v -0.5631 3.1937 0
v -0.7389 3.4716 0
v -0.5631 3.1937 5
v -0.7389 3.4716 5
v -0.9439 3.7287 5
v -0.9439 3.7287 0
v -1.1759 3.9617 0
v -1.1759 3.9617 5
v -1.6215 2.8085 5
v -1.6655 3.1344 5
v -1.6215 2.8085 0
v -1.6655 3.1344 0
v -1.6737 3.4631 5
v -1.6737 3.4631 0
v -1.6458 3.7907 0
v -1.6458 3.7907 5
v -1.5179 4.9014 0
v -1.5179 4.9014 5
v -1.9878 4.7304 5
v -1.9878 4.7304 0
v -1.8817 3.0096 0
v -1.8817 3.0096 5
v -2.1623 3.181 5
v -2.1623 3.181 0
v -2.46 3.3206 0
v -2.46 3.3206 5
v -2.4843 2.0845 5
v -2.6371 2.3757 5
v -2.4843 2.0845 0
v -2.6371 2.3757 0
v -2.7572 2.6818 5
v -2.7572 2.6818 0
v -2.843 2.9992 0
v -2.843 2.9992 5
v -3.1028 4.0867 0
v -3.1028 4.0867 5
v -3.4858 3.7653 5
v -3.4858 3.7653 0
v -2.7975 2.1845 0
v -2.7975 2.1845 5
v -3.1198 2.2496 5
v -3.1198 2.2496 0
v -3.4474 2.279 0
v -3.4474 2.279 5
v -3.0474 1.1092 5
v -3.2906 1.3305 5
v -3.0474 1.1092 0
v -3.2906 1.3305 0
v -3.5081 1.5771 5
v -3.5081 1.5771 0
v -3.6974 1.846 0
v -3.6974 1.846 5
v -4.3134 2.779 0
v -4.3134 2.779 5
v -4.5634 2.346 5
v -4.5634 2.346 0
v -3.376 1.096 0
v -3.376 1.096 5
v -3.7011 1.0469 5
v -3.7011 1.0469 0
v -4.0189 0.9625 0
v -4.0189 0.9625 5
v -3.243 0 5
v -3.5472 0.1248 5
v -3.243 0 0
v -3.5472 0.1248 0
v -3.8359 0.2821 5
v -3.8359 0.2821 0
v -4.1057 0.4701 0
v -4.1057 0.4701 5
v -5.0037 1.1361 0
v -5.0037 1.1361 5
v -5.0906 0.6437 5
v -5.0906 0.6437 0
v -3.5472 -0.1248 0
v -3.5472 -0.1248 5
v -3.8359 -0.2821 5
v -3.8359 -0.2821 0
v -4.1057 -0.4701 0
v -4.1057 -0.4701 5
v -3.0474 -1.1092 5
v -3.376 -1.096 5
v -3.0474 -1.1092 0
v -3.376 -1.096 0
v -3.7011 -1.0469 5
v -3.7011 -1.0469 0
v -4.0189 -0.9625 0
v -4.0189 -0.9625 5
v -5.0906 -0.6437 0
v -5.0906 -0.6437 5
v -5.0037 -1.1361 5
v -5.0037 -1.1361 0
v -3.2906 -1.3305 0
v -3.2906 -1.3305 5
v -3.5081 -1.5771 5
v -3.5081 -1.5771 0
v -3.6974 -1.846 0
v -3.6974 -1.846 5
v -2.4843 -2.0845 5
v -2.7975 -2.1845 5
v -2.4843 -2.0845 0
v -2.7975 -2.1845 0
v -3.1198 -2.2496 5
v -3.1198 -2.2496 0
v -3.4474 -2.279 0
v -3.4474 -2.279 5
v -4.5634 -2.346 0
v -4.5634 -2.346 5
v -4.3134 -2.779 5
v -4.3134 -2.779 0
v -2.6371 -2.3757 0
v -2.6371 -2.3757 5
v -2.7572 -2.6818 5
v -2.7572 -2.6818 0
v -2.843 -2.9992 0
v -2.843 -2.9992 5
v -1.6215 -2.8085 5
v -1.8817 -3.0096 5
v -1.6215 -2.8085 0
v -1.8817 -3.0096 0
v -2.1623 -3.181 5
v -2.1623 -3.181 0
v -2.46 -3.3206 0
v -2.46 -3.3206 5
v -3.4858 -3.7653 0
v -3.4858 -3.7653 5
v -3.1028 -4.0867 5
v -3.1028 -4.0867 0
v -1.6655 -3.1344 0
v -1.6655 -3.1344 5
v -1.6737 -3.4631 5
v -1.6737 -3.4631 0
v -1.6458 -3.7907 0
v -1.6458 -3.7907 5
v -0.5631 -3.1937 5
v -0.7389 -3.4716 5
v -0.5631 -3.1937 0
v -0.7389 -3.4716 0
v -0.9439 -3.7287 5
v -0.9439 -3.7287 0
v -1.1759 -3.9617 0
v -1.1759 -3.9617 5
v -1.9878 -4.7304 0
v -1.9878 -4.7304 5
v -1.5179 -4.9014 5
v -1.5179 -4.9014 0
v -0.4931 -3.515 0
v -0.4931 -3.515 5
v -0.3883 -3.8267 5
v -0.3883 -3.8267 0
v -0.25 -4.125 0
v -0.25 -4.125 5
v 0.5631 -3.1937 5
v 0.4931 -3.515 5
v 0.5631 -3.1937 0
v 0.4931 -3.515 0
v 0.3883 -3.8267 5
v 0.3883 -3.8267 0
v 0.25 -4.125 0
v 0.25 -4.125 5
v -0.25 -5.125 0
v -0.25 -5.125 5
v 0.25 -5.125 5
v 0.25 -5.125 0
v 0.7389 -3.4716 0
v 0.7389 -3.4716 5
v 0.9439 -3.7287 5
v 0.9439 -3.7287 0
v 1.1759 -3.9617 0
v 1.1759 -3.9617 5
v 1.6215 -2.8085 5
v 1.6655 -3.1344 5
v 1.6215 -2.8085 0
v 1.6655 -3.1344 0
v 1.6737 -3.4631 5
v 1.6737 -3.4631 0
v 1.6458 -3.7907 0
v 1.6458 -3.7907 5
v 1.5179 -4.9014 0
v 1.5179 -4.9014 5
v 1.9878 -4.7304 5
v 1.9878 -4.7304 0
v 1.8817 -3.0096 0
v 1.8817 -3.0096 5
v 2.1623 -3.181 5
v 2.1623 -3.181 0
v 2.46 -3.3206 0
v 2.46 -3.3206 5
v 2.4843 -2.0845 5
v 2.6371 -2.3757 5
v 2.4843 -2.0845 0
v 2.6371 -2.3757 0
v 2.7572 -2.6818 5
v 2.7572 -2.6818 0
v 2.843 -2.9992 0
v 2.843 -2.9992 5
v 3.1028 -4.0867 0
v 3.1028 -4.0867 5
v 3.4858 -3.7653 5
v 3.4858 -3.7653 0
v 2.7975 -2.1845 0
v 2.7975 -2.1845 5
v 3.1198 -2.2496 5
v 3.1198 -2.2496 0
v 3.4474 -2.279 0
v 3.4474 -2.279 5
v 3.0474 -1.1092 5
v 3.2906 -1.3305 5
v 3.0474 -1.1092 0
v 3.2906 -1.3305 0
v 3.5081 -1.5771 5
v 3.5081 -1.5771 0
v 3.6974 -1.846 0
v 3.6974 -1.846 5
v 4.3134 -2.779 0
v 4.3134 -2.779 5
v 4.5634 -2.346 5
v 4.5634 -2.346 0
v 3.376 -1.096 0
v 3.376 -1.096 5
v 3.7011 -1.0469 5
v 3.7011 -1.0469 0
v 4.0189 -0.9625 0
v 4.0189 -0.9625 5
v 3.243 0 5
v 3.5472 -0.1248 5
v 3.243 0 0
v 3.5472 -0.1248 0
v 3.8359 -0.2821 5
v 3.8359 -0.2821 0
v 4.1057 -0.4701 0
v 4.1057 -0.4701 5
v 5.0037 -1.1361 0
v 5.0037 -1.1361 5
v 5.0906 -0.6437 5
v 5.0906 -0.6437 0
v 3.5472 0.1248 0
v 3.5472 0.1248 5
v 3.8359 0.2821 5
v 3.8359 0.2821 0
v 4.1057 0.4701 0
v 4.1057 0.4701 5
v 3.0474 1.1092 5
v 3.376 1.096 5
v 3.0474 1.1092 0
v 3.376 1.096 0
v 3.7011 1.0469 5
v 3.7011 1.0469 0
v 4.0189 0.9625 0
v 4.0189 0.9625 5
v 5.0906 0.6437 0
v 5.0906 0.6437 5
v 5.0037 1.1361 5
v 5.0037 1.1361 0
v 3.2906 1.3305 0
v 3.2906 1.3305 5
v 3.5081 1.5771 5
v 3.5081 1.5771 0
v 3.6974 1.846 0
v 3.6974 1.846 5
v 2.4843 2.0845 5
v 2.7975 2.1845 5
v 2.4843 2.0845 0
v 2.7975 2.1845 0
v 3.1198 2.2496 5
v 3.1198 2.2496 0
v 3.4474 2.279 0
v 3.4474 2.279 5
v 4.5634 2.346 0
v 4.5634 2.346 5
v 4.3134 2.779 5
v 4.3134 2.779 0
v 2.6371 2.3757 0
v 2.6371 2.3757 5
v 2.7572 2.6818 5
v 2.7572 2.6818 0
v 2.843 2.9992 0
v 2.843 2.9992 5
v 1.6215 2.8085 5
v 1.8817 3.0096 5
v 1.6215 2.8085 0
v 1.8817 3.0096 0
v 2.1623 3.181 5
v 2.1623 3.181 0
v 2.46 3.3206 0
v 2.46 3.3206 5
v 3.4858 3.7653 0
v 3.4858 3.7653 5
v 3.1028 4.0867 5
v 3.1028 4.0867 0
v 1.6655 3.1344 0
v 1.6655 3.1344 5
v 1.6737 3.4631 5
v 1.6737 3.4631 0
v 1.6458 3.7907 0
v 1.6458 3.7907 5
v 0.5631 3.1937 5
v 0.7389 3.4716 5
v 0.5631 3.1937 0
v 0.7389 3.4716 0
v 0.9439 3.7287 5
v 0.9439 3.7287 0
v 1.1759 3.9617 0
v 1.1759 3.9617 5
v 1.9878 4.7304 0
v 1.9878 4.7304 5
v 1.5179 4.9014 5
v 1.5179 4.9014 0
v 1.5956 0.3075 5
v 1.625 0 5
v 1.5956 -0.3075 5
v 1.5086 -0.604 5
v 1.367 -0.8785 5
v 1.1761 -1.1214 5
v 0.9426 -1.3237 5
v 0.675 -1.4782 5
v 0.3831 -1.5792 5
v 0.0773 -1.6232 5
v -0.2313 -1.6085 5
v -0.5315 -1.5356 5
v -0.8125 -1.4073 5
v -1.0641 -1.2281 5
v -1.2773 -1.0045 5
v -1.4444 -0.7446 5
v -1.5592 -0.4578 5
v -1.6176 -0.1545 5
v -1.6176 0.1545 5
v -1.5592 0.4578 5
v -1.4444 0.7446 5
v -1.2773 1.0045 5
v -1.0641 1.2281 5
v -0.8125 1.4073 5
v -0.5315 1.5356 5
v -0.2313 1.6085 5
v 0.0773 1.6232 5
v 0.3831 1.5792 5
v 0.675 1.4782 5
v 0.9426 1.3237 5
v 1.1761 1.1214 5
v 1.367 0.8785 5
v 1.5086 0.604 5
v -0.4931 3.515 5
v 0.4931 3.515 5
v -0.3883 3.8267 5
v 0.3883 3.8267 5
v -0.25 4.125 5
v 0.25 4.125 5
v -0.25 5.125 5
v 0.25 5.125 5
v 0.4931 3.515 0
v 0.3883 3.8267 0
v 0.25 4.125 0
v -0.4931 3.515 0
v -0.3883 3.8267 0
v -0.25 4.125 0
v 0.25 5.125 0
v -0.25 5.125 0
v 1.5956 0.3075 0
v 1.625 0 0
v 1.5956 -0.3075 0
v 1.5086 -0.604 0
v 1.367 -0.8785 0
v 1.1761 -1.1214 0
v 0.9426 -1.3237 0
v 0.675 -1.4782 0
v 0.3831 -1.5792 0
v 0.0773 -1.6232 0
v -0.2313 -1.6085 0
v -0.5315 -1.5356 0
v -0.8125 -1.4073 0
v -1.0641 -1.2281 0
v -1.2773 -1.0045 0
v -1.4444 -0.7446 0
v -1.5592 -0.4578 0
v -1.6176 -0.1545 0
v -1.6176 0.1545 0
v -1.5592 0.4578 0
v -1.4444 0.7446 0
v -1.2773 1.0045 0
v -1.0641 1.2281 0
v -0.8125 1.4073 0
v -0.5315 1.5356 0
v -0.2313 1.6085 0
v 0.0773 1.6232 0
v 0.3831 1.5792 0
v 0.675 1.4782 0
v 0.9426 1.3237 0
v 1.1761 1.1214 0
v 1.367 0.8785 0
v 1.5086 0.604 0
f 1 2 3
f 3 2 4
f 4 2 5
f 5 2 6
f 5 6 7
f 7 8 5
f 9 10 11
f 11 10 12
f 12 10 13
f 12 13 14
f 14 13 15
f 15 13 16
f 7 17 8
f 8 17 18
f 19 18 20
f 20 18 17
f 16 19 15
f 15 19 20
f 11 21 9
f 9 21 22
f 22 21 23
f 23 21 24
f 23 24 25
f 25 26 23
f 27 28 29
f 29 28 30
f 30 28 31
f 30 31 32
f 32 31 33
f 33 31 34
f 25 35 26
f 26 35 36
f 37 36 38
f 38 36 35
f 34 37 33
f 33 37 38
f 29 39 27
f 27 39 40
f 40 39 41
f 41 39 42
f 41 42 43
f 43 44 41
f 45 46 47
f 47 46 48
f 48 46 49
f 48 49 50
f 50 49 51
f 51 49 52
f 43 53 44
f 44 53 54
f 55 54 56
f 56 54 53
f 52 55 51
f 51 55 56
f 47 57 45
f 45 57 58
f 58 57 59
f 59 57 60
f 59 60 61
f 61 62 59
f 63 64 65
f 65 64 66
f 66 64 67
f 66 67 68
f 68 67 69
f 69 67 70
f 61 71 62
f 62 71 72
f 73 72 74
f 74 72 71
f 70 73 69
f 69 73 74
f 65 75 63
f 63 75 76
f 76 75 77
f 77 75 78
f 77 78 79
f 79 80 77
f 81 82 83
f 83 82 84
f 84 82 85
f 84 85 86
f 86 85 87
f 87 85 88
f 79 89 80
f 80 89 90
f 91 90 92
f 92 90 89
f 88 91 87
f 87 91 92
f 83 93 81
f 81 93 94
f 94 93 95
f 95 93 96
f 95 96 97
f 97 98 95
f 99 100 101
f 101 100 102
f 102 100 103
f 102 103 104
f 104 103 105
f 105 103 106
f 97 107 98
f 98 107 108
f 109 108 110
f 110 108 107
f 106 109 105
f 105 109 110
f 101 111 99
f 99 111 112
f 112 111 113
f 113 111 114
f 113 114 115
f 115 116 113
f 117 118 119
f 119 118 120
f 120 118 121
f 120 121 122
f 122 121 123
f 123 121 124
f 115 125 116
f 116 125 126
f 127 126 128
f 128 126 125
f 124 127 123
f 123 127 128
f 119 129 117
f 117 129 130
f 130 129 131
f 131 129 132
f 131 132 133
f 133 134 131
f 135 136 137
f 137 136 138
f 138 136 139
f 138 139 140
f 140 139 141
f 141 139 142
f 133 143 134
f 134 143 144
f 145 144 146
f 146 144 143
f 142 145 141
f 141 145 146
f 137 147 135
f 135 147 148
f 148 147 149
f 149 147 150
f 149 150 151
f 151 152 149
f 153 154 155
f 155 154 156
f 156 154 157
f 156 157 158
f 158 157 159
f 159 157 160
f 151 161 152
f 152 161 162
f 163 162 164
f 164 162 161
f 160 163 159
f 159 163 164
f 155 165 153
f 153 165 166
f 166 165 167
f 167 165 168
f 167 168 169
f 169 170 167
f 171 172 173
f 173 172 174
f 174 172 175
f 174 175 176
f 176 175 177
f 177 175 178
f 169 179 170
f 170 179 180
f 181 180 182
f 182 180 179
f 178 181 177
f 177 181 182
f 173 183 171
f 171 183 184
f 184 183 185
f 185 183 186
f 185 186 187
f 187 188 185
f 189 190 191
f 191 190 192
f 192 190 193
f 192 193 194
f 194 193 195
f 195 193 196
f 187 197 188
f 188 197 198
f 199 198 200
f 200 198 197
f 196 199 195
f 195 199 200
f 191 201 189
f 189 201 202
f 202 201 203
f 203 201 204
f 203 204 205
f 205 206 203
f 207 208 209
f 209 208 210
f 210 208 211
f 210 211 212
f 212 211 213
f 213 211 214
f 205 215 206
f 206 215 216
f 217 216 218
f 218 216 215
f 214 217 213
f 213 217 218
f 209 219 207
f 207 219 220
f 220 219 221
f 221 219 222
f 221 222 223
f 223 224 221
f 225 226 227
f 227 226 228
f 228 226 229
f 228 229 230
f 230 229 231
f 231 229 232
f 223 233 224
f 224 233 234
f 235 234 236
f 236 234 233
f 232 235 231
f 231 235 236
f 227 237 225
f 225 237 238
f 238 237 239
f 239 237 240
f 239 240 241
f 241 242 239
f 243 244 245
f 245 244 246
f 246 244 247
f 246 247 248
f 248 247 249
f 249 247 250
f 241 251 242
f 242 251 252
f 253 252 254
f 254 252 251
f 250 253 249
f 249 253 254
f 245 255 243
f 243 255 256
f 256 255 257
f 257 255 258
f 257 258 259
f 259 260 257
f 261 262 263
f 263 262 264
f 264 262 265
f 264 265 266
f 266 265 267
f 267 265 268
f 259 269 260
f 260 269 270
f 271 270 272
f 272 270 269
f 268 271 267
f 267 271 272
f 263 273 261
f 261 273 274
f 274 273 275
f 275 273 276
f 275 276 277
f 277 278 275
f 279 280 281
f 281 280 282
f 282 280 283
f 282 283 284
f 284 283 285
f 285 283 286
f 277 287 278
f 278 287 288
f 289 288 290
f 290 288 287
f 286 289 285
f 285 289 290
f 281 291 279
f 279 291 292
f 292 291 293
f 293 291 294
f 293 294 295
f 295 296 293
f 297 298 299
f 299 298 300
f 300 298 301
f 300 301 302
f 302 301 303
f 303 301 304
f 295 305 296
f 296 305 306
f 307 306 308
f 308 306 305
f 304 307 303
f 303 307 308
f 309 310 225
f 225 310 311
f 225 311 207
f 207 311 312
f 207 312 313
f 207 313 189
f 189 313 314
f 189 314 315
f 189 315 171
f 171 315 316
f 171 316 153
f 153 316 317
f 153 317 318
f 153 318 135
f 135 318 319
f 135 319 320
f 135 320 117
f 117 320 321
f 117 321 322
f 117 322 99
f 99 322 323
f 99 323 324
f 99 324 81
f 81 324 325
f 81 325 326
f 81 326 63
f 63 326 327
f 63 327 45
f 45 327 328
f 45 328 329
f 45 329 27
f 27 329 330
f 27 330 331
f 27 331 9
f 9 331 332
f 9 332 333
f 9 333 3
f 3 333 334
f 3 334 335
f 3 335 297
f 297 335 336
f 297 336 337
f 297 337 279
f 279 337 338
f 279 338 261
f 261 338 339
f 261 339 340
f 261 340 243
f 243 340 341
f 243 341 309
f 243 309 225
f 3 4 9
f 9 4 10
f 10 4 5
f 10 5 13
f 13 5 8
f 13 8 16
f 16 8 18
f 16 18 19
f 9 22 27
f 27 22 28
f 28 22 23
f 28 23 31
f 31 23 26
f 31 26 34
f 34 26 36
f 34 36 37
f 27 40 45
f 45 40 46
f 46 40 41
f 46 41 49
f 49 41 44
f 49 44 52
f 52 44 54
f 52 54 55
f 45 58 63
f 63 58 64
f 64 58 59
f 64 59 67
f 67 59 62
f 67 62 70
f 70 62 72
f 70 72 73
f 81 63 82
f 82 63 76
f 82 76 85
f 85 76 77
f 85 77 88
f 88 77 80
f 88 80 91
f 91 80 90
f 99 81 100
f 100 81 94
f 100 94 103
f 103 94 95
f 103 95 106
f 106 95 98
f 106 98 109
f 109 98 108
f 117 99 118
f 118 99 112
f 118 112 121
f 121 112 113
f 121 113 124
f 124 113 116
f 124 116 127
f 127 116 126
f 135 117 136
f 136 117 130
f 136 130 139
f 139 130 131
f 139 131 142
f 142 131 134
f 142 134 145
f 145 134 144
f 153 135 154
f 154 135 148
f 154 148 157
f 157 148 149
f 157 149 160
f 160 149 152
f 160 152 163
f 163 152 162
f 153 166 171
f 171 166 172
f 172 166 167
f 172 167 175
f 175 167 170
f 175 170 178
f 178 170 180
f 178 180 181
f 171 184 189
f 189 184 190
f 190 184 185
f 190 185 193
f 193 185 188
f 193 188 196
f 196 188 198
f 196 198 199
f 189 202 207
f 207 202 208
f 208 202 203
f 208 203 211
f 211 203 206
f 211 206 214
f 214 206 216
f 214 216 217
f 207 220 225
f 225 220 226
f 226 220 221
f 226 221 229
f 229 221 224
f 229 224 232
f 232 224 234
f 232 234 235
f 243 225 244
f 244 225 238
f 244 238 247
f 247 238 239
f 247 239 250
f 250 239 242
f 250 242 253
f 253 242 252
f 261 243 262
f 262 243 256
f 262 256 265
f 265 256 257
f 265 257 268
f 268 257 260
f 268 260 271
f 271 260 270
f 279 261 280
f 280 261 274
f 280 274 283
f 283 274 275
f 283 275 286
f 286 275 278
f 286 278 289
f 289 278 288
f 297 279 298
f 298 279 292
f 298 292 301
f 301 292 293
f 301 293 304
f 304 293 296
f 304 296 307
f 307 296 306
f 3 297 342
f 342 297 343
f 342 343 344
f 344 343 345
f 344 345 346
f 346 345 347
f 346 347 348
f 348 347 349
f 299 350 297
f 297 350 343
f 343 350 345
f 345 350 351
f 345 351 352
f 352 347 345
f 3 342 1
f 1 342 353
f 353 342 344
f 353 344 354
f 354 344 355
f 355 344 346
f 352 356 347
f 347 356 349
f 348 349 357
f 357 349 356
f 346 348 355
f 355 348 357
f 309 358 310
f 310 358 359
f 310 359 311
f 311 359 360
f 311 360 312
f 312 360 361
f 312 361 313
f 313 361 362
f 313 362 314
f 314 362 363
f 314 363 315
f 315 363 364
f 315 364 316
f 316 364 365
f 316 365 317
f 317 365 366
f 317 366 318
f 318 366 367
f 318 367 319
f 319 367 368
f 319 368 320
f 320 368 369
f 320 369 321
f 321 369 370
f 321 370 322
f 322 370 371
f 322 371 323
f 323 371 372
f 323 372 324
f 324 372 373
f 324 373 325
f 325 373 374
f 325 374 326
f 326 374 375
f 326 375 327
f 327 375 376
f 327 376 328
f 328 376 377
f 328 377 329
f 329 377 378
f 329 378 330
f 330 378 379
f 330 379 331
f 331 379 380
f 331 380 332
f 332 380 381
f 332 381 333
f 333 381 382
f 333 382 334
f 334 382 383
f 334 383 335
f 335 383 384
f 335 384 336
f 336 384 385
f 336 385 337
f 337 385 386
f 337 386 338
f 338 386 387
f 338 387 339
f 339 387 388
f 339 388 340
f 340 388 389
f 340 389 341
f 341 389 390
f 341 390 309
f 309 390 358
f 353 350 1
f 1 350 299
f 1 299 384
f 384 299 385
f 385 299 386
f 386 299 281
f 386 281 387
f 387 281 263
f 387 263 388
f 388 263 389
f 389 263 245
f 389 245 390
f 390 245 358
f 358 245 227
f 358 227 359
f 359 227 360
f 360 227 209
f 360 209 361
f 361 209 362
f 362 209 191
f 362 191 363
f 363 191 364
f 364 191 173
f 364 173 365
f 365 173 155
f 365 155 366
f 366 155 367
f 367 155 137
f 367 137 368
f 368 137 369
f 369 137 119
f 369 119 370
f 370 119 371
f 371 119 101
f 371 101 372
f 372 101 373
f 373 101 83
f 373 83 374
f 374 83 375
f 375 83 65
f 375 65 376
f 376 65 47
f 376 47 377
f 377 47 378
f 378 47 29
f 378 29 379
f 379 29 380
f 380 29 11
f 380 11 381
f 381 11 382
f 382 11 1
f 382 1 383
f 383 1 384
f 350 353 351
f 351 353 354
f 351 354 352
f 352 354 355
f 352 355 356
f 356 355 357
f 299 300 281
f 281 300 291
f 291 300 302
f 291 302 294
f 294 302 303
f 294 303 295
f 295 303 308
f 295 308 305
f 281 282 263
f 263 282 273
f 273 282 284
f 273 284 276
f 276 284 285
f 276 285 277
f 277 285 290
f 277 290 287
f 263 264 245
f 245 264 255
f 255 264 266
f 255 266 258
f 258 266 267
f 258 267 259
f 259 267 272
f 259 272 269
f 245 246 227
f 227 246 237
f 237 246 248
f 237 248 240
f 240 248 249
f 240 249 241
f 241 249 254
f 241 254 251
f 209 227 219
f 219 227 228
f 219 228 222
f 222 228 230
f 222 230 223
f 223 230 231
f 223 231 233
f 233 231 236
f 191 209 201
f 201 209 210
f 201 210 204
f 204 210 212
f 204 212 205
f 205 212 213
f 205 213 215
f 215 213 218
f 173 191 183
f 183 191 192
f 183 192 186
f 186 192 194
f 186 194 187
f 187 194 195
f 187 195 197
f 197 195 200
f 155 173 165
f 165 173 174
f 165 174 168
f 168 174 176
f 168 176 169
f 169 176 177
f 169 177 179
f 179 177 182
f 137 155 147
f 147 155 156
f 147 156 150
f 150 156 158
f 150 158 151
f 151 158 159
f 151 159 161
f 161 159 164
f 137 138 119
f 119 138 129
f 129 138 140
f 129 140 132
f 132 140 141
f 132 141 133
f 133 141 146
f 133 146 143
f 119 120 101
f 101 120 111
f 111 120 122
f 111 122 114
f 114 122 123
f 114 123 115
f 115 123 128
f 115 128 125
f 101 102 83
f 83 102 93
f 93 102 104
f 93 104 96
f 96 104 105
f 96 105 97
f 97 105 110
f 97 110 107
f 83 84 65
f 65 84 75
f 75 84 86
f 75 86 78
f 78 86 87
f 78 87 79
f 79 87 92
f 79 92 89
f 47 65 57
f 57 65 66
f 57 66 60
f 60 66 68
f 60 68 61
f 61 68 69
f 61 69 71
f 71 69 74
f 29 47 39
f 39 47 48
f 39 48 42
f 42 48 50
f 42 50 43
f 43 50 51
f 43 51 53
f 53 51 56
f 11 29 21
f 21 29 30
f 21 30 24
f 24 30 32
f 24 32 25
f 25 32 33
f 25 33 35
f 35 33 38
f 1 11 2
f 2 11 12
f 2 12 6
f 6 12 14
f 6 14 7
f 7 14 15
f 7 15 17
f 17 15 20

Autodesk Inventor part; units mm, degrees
ref_plane "YZ Plane" through (0, 0, 0) normal (1, 0, 0) x (0, 1, 0)
ref_plane "XZ Plane" through (0, 0, 0) normal (0, 1, 0) x (-1, 0, 0)
ref_plane "XY Plane" through (0, 0, 0) normal (0, 0, 1) x (1, 0, 0)
sketch "Sketch1" plane through (0, 0, 0) normal (0, 0, 1) x (1, 0, 0)
  circle A0 centre (0, 0) radius 3.125
  circle A1 centre (0, 0) radius 1.625
  dimension "d0" = 6.25
  dimension "d1" = 3.25
extrude "Extrusion1" add sketch "Sketch1" along normal blind 5
sketch "Sketch2" plane through (0, 0, 5) normal (0, 0, 1) x (1, 0, 0)
  circle A0 centre (0, 0) radius 3.125 projected
  line L0 (0, 3.125) -> (0, 5.125)
  line L1 (-0.25, 3.125) -> (0.25, 3.125)
  line L2 (0.25, 3.125) -> (0.25, 5.125)
  line L3 (0.25, 5.125) -> (-0.25, 5.125)
  line L4 (-0.25, 5.125) -> (-0.25, 3.125)
  line L5 (-0.25, 3.125) -> (0.25, 5.125) construction
  line L6 (0.25, 3.125) -> (-0.25, 5.125) construction
  line L7 (0, 3.125) -> (0, 2.625)
  line L8 (0, 2.625) -> (0.6, 2.625)
  arc A1 (0.6, 2.625) -> (0.25, 4.125) centre (-2.3986, 2.7162) ccw
  line L9 (0, 2.625) -> (-0.6, 2.625)
  arc A2 (-0.25, 4.125) -> (-0.6, 2.625) centre (2.3986, 2.7162) ccw
  point P0 (0, 4.125)
  point P1 (-1, 2.625)
  dimension "d4" = 2
  dimension "d5" = 0.5
  dimension "d6" = 0.5
  dimension "d7" = 0.6
  dimension "d8" = 1.6
  dimension "d10" = 3
  dimension "d18" = 0.6
  dimension "d19" = 3
extrude "Extrusion2" add sketch "Sketch2" against normal blind 5 contours A1 L8 L7 A0 | A0 L1 L2 A1 | A2 L4 L1 A0 | A0 L7 L9 A2 | L1 L4 L3 L0 | L0 L3 L2 L1
ref_plane "Work Plane1" through (0, 4.125, 5) normal (1, 0, 0) x (0, 0, -1)
sketch "Sketch3" plane through (0, 4.125, 5) normal (1, 0, 0) x (0, 0, -1)
  line L0 (5, -4.125) -> (9.15, -4.125)
pattern_circular "Circular Pattern1" count 18 over 360 about axis through (0, 0, 0) along (0, 0, -1) of "Extrusion2"
properties part number "cog_index"
